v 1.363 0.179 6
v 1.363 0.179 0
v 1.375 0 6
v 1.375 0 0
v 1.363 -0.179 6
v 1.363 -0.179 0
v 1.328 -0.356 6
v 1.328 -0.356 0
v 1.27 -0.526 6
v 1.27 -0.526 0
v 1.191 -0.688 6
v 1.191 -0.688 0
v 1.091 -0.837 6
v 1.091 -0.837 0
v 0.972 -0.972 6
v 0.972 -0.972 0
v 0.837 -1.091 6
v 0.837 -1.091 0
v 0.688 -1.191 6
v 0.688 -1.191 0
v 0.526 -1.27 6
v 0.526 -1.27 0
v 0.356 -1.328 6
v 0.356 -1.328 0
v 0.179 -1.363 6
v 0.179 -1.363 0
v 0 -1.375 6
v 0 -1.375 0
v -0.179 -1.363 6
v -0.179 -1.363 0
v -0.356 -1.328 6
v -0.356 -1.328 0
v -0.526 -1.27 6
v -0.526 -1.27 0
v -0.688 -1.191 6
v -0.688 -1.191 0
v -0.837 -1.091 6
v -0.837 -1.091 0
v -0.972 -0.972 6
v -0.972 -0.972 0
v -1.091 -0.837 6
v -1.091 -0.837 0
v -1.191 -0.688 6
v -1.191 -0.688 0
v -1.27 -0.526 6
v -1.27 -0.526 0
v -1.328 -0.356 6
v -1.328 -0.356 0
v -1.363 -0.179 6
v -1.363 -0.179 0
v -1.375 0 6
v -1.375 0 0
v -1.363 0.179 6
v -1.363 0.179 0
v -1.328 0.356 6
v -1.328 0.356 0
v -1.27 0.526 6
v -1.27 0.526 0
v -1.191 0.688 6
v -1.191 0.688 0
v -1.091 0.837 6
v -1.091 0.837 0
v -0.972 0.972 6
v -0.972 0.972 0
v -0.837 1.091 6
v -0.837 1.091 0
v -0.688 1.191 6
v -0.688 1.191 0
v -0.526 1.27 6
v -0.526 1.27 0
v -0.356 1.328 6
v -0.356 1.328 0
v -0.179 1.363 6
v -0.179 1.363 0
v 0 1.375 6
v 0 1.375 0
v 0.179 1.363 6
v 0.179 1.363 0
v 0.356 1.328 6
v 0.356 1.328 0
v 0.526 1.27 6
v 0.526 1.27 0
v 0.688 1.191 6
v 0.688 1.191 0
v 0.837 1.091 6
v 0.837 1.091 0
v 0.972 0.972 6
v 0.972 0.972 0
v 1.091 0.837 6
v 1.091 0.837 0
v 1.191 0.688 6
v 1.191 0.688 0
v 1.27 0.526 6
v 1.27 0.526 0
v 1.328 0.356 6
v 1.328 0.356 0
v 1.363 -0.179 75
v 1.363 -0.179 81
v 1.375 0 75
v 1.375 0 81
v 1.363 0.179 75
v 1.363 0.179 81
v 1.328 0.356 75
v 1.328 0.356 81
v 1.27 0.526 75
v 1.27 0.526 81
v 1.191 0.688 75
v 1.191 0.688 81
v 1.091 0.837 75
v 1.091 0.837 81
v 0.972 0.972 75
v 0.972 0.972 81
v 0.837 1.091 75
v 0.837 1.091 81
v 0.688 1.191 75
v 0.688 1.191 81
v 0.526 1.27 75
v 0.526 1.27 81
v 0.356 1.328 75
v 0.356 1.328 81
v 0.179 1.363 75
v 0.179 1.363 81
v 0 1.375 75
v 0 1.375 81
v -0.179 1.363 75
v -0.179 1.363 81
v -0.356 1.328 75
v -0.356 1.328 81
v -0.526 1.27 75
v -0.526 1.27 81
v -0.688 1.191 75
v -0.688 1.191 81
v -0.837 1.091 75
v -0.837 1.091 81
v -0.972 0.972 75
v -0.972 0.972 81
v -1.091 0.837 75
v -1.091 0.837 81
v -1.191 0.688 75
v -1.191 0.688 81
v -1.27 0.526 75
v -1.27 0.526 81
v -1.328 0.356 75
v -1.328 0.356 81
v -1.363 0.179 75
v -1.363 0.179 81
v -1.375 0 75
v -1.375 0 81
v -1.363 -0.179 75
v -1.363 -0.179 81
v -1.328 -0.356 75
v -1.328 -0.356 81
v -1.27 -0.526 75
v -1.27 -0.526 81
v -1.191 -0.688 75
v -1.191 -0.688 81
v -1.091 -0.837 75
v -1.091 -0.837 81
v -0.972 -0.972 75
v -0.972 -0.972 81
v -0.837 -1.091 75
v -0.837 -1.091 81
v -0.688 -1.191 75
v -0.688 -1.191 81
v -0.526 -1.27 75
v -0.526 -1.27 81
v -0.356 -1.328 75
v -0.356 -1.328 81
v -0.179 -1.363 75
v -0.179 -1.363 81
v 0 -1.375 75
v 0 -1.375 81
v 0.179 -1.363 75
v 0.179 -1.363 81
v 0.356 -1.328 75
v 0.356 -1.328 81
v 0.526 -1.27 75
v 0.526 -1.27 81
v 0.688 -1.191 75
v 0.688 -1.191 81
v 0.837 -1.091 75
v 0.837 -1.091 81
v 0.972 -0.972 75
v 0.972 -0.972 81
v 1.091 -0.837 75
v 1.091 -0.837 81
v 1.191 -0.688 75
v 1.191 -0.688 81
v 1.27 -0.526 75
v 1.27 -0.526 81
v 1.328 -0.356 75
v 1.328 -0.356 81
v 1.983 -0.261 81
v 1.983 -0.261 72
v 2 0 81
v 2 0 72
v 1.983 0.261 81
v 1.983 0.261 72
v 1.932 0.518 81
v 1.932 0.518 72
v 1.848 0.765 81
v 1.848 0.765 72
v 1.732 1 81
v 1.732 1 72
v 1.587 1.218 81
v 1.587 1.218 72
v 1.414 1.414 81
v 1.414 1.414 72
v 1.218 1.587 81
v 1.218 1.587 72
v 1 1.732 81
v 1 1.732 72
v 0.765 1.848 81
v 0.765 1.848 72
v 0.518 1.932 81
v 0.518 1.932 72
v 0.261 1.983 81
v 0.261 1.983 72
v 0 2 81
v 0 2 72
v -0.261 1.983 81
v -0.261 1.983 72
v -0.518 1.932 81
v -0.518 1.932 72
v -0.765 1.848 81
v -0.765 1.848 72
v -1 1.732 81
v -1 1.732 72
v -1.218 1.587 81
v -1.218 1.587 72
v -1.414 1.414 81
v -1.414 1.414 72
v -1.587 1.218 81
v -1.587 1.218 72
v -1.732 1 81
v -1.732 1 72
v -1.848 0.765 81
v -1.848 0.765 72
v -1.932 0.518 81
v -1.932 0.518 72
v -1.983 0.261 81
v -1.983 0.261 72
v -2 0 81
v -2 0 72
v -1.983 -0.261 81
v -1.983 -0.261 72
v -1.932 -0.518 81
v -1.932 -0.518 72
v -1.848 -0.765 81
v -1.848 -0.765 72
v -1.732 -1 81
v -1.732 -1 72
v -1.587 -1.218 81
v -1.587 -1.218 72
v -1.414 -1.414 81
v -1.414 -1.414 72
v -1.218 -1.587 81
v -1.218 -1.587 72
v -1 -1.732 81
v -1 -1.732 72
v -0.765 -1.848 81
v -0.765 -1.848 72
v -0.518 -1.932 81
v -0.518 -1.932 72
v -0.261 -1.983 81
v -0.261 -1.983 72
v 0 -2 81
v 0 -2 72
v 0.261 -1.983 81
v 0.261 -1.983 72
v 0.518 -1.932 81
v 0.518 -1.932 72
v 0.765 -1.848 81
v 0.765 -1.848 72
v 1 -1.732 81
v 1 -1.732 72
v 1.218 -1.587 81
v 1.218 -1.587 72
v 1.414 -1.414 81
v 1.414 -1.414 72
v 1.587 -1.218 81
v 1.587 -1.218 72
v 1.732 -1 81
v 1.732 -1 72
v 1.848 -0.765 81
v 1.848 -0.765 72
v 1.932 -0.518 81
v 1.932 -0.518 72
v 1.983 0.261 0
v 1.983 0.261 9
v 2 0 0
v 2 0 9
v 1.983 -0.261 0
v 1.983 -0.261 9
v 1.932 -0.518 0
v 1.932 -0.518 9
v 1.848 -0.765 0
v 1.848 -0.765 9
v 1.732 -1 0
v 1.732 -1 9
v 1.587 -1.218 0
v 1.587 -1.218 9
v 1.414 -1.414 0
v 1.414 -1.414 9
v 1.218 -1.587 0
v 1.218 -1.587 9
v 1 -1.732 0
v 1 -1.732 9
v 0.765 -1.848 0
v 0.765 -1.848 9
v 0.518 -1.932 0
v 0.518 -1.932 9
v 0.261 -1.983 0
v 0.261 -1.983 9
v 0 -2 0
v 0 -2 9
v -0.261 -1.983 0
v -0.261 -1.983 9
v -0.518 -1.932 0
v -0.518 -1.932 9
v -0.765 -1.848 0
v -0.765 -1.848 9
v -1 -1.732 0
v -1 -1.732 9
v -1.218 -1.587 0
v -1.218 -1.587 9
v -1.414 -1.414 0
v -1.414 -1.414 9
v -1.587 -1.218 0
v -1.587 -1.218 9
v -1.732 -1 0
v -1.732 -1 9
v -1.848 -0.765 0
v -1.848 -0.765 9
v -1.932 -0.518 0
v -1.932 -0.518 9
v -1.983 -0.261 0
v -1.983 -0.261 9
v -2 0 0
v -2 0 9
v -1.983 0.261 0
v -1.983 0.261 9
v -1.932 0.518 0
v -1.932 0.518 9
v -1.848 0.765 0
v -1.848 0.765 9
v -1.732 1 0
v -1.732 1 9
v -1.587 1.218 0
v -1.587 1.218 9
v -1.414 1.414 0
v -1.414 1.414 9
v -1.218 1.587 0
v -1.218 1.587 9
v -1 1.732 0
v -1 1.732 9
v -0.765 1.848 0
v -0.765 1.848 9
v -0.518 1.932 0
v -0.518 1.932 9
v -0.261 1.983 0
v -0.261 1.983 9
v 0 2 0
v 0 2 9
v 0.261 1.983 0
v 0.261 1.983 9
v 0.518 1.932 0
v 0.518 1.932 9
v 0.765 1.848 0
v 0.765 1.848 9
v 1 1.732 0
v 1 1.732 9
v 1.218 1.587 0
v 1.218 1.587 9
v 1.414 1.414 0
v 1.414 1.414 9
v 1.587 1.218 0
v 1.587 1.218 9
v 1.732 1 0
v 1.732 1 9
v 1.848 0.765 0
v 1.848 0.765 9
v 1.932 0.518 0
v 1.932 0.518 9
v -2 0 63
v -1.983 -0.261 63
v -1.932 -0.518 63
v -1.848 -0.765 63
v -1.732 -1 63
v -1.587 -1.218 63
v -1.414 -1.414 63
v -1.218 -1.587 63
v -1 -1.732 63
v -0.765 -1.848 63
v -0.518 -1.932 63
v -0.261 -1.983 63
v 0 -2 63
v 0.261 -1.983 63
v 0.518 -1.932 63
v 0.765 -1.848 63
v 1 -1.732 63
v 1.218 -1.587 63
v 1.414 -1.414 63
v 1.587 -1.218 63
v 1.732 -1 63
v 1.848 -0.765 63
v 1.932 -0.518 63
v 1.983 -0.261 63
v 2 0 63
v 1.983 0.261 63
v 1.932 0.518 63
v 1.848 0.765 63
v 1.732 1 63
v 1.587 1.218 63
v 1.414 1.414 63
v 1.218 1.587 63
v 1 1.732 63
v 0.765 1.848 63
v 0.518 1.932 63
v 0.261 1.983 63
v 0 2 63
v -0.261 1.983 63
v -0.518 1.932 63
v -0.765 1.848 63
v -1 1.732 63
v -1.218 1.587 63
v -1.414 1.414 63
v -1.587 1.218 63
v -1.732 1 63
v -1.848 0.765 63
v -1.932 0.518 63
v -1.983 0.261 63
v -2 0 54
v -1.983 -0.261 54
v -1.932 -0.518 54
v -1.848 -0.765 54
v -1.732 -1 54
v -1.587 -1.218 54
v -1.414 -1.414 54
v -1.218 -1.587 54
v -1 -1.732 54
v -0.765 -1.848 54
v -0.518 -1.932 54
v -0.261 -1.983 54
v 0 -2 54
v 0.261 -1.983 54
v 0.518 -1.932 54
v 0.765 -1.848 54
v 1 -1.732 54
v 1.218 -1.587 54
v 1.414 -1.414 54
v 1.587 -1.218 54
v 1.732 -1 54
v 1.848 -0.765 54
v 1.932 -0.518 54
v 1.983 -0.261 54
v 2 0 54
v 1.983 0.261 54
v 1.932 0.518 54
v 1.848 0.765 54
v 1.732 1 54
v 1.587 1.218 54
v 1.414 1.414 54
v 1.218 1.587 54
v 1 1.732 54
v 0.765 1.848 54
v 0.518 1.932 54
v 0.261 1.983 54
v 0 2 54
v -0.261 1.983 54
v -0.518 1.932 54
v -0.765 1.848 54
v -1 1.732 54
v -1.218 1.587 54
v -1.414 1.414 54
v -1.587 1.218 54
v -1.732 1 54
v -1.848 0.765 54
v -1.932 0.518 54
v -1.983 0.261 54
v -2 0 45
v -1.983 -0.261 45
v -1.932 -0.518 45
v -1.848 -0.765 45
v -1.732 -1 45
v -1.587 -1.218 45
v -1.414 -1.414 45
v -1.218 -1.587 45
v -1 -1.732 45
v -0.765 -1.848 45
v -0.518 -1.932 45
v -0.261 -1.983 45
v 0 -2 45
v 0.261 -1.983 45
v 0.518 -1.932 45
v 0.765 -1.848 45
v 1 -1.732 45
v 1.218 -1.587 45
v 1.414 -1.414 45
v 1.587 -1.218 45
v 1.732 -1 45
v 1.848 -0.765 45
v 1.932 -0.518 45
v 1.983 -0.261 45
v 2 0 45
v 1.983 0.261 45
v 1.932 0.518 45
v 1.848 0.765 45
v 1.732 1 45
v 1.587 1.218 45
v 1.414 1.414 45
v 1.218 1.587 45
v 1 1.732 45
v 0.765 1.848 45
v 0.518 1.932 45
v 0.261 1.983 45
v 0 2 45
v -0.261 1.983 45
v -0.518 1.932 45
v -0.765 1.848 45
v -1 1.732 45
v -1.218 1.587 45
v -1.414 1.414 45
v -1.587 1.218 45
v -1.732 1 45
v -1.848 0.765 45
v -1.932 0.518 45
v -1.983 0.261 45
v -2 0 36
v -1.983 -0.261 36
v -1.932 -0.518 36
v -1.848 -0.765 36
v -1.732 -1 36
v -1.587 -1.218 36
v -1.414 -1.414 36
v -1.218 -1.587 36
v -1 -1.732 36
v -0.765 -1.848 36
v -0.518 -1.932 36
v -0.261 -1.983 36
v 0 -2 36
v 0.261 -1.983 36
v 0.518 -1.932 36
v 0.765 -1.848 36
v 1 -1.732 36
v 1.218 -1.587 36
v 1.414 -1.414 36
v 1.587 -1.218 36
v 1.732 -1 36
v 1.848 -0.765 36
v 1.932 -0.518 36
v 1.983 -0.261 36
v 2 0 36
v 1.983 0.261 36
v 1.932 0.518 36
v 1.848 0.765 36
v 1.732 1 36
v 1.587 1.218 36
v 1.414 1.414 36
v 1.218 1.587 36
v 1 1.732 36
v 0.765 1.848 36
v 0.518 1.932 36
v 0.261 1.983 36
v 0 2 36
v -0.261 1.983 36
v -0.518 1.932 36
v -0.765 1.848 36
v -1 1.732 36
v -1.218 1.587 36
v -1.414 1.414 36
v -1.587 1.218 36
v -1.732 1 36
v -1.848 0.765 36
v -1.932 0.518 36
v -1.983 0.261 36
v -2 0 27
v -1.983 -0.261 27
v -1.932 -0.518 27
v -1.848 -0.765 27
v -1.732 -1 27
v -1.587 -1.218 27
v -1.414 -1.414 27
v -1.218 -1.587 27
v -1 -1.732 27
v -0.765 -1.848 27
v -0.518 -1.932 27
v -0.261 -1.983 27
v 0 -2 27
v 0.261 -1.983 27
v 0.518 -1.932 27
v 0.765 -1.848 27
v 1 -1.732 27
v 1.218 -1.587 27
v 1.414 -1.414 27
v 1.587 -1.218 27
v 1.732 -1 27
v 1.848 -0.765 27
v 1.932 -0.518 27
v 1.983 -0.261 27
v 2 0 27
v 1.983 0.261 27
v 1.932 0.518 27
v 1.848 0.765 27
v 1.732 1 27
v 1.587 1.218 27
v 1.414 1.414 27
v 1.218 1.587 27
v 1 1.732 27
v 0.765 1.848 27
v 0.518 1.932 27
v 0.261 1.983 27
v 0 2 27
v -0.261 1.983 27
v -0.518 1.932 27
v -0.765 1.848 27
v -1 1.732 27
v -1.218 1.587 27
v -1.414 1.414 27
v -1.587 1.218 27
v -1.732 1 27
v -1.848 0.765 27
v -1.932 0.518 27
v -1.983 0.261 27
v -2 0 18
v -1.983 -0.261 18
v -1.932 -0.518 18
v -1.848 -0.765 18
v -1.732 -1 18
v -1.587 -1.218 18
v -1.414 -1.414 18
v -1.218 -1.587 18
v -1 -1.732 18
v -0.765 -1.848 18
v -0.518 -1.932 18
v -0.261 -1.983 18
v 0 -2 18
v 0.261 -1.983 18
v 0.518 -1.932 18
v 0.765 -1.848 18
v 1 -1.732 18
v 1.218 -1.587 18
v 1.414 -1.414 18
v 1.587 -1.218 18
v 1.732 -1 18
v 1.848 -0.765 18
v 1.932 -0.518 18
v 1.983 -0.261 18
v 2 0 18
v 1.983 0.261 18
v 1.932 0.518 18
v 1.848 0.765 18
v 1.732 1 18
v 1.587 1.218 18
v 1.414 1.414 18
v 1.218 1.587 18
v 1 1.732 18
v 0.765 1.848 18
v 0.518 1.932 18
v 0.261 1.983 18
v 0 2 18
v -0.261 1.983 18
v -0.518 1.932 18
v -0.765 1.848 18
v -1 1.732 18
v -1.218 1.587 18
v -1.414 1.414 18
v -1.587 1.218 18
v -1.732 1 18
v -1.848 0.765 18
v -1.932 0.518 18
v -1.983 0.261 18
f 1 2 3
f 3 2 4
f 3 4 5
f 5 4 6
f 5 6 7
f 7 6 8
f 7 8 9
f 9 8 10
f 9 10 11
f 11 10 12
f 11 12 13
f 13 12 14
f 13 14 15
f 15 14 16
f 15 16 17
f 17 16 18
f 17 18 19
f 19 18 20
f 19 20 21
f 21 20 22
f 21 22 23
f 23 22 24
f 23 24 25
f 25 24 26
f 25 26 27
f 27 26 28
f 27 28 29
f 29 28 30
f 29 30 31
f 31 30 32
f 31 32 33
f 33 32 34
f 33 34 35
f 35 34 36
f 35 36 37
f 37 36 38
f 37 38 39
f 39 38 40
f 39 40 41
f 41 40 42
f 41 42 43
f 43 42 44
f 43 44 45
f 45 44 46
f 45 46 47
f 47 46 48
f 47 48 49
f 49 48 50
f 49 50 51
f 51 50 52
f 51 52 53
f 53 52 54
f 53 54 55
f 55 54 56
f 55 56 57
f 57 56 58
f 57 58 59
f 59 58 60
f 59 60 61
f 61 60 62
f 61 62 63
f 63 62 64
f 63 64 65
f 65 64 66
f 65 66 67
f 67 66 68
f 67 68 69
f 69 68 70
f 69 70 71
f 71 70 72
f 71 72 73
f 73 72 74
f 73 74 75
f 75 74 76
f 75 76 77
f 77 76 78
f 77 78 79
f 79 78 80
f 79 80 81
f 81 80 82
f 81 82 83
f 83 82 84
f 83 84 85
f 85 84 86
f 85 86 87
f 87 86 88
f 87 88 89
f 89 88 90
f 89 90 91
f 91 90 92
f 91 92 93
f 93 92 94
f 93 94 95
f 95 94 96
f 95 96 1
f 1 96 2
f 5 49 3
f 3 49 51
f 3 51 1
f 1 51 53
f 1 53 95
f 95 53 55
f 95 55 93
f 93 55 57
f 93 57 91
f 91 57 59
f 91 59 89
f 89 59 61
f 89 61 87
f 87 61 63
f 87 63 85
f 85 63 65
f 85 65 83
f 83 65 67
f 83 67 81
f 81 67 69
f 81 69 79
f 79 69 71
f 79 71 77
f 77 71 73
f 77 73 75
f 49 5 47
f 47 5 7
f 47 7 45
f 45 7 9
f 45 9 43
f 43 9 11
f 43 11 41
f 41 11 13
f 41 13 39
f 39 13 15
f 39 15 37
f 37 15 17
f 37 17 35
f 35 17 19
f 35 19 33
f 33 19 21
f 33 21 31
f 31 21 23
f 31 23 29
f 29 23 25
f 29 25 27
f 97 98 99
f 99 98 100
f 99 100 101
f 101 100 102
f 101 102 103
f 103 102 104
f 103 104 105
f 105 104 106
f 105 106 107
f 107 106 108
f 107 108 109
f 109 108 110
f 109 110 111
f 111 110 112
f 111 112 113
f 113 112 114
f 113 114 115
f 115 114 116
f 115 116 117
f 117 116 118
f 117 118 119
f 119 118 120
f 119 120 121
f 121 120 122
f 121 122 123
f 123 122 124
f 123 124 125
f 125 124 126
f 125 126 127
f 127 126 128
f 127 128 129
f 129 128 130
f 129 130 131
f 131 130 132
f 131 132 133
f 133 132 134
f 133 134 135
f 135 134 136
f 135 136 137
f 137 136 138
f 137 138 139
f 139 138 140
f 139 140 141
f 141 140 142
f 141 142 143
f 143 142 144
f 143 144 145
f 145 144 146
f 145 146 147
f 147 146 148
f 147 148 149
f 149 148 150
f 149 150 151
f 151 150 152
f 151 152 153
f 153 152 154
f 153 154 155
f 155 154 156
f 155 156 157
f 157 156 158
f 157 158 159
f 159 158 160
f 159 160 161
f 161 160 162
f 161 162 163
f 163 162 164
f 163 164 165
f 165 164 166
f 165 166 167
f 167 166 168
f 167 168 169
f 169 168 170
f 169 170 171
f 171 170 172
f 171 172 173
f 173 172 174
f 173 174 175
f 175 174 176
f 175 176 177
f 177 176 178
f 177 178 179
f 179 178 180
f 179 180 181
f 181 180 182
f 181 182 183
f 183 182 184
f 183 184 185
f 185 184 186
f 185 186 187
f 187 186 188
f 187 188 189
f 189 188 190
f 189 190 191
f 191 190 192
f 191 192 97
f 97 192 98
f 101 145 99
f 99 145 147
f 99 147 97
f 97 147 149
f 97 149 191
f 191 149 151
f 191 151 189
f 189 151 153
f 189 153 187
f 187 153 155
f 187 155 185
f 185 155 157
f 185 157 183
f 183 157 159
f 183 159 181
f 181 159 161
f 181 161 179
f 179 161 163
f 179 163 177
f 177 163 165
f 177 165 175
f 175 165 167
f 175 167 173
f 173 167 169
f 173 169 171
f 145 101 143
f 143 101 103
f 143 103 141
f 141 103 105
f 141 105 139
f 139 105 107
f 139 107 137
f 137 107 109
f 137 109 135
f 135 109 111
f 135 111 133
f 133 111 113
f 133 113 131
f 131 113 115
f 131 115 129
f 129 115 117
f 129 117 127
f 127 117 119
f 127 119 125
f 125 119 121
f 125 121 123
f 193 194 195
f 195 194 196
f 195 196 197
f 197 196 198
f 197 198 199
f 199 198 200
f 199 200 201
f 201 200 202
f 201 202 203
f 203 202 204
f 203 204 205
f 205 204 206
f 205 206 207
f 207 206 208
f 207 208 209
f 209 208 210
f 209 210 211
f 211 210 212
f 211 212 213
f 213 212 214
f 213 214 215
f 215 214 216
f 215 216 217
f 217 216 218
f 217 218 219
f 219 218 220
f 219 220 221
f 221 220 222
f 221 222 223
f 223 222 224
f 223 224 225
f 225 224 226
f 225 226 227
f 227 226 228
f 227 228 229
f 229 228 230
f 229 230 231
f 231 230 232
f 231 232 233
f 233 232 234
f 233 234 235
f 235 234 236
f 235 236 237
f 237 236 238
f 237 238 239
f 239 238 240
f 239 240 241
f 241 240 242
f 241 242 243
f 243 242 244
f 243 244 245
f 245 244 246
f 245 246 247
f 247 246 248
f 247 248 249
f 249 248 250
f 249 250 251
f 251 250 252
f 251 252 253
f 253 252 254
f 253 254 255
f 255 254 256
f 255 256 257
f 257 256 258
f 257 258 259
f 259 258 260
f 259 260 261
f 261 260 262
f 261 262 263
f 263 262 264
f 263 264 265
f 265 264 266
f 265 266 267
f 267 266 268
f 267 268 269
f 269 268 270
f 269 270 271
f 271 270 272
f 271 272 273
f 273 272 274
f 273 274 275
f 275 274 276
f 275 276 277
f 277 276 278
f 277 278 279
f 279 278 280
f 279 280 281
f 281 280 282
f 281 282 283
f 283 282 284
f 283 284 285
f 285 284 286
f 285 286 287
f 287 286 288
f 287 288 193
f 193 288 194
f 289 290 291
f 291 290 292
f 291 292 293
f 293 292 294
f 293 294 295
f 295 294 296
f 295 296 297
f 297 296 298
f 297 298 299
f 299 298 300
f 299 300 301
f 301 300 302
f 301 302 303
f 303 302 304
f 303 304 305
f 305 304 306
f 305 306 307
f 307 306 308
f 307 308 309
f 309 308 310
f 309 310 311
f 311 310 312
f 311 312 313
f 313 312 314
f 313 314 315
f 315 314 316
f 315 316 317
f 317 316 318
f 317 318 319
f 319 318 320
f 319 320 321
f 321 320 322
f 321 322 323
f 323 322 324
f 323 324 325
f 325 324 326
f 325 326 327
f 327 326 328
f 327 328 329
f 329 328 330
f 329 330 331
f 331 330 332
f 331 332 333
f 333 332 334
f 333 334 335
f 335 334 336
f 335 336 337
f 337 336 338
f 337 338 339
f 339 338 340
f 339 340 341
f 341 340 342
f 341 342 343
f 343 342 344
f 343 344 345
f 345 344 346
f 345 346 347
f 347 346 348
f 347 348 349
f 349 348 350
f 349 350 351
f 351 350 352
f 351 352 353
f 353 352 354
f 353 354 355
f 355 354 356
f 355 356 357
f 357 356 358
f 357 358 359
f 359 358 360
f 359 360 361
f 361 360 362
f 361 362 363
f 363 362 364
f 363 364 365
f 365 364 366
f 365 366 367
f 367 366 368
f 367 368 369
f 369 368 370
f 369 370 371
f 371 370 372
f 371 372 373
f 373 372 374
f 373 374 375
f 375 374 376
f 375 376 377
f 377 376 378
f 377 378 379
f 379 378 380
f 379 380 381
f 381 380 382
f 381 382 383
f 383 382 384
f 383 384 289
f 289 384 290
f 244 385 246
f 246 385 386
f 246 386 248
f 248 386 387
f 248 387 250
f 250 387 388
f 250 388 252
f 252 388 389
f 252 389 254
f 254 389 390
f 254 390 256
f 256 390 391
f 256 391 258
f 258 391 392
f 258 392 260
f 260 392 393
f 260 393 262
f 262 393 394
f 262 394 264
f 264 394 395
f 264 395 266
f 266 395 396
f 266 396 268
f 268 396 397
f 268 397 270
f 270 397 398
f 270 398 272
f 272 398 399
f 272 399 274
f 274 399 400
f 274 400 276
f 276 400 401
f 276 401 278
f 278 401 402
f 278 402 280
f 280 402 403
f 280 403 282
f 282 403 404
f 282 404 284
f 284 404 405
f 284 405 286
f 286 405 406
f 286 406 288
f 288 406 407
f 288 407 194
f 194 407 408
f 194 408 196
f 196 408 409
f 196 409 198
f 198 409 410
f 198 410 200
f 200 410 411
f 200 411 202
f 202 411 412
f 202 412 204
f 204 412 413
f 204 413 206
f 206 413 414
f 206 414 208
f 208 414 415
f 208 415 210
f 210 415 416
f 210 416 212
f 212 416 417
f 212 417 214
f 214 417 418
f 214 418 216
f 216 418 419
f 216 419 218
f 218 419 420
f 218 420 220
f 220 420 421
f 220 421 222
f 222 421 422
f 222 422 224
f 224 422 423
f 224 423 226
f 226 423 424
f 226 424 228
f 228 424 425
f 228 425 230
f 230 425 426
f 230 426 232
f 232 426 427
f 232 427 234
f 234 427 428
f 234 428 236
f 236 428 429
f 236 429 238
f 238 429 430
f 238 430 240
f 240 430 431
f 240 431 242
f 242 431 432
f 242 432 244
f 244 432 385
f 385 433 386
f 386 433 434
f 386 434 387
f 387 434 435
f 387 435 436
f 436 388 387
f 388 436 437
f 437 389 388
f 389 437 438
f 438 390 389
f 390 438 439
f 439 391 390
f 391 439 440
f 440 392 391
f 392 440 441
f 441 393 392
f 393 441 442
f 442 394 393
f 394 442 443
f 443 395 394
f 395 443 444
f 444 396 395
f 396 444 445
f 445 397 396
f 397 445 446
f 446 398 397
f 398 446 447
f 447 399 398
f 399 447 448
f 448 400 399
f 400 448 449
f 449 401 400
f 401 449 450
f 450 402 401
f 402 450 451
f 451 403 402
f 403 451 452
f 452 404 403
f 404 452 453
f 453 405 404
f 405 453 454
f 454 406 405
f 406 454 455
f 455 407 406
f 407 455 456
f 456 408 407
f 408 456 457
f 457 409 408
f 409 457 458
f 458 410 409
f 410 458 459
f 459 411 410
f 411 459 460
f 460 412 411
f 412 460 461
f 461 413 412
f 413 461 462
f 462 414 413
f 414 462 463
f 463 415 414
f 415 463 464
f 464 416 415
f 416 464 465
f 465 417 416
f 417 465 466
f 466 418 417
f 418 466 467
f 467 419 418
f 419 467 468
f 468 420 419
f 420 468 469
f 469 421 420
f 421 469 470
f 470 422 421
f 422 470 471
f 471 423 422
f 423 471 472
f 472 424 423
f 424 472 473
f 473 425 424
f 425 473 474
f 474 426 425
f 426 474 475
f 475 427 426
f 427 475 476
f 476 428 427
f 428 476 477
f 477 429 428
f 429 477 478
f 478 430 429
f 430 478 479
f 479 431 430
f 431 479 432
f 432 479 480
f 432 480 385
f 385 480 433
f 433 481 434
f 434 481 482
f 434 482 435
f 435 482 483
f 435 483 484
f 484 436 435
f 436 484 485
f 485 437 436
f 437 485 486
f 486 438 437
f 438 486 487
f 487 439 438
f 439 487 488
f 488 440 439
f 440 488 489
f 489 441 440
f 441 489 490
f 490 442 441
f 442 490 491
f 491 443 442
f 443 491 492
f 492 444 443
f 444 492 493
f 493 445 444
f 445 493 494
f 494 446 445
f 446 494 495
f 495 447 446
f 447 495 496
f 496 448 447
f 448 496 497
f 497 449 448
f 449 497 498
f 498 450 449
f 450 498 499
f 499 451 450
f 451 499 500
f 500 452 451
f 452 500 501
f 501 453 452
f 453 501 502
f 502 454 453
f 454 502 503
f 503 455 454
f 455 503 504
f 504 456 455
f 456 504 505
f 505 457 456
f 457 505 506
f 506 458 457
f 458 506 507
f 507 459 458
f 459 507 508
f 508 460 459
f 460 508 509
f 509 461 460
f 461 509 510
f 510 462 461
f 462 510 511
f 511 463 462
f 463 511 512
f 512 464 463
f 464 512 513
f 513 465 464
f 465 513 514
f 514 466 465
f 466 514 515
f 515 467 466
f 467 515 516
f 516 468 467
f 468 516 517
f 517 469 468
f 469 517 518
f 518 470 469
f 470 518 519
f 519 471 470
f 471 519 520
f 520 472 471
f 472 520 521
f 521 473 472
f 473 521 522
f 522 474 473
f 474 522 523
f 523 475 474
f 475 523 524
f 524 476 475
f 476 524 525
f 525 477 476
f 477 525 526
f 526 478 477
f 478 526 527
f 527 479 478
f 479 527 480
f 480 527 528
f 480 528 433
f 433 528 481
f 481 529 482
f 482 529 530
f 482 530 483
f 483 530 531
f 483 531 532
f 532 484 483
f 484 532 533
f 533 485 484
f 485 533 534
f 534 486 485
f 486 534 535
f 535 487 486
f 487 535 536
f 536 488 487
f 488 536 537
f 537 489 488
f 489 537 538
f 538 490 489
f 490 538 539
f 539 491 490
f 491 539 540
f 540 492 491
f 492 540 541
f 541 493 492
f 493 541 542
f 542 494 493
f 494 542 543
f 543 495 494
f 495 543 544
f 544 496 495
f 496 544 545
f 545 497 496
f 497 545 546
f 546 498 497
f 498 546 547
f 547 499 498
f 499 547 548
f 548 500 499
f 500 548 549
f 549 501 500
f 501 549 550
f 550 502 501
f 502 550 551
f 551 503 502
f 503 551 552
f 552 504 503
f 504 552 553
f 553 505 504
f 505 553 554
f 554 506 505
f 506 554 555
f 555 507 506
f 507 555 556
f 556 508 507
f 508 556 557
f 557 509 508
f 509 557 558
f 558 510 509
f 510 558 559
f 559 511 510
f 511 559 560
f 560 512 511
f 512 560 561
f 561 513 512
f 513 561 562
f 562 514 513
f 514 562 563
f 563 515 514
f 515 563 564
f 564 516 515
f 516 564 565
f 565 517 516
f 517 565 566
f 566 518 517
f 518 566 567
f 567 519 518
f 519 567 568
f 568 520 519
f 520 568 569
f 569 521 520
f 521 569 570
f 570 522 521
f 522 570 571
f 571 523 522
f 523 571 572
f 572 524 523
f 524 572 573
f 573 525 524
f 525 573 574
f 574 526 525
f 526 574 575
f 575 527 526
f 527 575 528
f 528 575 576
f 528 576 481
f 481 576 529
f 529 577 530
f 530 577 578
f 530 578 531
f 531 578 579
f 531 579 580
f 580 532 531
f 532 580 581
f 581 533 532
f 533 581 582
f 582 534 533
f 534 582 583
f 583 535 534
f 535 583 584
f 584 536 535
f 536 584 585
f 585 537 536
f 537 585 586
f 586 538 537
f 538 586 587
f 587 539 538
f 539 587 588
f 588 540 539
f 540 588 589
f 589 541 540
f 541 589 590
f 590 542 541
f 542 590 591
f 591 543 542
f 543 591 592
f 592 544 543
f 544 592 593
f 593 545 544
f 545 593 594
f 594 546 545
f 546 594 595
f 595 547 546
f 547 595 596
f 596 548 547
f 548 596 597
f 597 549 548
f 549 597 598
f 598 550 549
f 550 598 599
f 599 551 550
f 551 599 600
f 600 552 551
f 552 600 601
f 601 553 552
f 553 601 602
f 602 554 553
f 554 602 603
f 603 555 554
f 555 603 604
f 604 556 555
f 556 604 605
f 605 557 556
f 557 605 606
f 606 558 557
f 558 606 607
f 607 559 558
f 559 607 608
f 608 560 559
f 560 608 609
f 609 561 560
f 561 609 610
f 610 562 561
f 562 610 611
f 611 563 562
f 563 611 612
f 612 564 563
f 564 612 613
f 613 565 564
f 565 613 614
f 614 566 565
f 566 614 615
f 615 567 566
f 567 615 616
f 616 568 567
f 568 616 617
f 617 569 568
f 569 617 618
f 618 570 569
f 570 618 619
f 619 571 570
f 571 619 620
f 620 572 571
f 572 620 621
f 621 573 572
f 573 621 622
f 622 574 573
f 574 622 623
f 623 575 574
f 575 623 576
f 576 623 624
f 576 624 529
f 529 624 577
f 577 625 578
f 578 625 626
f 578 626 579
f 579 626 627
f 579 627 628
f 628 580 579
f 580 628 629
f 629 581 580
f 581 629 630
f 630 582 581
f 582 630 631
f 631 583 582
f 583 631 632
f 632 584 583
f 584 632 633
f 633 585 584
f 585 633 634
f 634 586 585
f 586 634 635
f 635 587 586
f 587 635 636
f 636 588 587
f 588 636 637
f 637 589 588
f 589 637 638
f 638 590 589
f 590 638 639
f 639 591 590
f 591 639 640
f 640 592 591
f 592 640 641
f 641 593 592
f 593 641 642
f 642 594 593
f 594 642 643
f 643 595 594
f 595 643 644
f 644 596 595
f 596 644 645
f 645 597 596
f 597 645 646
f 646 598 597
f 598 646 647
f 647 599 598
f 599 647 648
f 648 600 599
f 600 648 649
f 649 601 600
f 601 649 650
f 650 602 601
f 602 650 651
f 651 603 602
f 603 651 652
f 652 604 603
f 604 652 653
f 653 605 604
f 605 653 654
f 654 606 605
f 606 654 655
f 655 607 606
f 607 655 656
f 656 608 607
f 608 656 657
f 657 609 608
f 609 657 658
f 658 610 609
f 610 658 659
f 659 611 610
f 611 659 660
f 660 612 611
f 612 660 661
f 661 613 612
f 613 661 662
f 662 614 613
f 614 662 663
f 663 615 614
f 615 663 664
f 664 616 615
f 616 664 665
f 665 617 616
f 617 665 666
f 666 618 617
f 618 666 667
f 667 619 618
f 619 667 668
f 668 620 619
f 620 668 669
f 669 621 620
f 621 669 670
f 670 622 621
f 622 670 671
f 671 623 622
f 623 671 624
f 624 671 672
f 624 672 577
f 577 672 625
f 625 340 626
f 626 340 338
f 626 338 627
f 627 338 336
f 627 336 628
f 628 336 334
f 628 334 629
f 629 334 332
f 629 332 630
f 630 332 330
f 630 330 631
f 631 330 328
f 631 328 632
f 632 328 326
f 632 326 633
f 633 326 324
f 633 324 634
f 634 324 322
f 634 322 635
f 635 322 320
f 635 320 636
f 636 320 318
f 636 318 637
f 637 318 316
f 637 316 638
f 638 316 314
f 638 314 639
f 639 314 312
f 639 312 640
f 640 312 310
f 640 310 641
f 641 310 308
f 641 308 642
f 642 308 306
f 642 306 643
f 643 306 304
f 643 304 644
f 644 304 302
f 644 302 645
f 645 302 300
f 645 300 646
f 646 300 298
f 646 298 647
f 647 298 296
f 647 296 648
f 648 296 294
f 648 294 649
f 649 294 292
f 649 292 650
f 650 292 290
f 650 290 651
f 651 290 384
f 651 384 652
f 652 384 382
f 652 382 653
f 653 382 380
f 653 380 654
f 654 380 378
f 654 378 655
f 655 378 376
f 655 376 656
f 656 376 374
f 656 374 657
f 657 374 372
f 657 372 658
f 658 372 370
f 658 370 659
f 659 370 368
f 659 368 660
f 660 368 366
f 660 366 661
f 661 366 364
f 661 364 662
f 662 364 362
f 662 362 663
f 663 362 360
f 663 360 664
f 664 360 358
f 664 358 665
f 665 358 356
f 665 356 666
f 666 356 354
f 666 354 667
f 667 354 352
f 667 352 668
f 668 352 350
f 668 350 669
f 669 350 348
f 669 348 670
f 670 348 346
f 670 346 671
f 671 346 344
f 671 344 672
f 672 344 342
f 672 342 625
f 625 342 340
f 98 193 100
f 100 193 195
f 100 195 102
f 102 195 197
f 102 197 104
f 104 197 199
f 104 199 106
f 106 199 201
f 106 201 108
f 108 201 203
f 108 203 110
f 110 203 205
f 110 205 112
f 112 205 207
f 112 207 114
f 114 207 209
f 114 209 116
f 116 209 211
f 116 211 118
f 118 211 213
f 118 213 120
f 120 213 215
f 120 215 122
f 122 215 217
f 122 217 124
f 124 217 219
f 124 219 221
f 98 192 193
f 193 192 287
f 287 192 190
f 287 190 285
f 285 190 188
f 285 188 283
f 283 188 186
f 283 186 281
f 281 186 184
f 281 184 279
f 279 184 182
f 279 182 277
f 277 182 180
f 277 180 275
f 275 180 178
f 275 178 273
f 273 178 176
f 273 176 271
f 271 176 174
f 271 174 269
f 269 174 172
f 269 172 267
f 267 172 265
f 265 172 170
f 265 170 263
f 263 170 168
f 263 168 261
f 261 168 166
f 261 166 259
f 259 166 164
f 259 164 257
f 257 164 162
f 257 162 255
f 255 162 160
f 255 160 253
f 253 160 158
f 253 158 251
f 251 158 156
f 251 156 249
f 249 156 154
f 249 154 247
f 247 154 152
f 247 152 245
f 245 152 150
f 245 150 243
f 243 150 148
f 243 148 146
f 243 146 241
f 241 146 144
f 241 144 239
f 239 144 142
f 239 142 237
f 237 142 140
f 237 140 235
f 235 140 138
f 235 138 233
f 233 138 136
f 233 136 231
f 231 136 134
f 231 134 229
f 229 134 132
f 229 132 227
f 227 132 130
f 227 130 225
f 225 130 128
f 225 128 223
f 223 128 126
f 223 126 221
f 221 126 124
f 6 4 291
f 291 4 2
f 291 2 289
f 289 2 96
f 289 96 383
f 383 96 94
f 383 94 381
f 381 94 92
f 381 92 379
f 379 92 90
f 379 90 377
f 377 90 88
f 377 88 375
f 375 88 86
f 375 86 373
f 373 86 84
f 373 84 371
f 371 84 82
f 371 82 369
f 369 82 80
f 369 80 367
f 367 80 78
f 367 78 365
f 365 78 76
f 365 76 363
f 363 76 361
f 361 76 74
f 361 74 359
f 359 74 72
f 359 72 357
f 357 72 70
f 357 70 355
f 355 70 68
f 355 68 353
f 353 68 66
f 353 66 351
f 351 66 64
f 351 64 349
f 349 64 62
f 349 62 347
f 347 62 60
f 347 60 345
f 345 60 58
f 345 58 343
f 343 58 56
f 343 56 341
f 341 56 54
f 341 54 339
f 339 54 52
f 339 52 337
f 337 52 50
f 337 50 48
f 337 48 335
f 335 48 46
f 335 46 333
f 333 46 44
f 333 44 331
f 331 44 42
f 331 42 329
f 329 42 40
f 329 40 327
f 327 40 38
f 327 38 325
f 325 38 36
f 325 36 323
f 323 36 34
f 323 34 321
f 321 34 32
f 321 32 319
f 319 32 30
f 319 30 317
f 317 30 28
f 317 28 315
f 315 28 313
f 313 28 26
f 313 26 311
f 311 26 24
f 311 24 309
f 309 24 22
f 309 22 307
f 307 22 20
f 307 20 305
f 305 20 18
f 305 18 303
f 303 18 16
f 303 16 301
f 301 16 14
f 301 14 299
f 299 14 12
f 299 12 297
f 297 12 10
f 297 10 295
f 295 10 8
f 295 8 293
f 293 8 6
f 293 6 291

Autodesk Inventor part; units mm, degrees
ref_plane "YZ Plane" through (0, 0, 0) normal (1, 0, 0) x (0, 1, 0)
ref_plane "XZ Plane" through (0, 0, 0) normal (0, 1, 0) x (-1, 0, 0)
ref_plane "XY Plane" through (0, 0, 0) normal (0, 0, 1) x (1, 0, 0)
sketch "Sketch1" plane through (0, 0, 0) normal (0, 0, 1) x (1, 0, 0)
  circle A0 centre (0, 0) radius 2
  circle A1 centre (0, 0) radius 1.375
  circle A2 centre (0, 0) radius 2.875
  circle A3 centre (0, 0) radius 2.25
  dimension "d0" = 4
  dimension "d1" = 2.75
  dimension "d2" = 5.75
  dimension "d3" = 4.5
extrude "Extrusion1" add sketch "Sketch1" along normal blind 81 contours A0 | A1
sketch "Sketch2" plane through (0, 0, 81) normal (0, 0, 1) x (1, 0, 0)
  circle A0 centre (0, 0) radius 1.375
  dimension "d9" = 2.75
extrude "Extrusion3" cut sketch "Sketch2" against normal blind 6
extrude "Extrusion4" cut sketch "Sketch1" along normal blind 6 contours A1
properties part number "Schanier pin"
